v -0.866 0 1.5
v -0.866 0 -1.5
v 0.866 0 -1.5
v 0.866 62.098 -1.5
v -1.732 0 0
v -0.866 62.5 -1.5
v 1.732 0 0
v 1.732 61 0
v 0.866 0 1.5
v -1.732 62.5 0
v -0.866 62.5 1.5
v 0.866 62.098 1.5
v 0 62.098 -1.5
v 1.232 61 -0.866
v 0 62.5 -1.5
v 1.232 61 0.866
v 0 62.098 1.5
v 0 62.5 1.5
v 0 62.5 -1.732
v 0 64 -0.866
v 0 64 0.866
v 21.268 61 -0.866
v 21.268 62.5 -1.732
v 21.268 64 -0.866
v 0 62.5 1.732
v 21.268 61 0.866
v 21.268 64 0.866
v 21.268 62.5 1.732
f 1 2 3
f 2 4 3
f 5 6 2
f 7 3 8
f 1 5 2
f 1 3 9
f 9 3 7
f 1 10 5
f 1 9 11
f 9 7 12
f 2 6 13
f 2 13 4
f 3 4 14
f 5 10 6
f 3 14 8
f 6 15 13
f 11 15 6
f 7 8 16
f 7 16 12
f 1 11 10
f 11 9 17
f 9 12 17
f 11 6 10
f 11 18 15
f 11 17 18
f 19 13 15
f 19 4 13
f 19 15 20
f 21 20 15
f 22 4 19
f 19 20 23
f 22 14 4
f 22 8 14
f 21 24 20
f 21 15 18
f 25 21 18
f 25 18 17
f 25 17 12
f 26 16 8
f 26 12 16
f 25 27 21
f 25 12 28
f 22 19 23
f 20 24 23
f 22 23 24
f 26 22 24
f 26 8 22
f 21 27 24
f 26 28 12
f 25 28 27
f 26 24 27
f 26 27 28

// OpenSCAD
// 3 mm metric hex key
// The holder specifies the hex size. Arm lengths follow the Wiha 350 short series as a representative example. The holder source leaves the key manufacturer unspecified. The elbow is simplified.
// Units: mm
$fn = 64;
union() {
    translate([0, 0, 0]) rotate([-90, 0, 0])
        cylinder(h=62.5, r1=1.7320508075688774, r2=1.7320508075688774, $fn=6);
    translate([0, 62.5, 0]) rotate([0, 90, 0])
        cylinder(h=21.26794919243112, r1=1.7320508075688774, r2=1.7320508075688774, $fn=6);
}
